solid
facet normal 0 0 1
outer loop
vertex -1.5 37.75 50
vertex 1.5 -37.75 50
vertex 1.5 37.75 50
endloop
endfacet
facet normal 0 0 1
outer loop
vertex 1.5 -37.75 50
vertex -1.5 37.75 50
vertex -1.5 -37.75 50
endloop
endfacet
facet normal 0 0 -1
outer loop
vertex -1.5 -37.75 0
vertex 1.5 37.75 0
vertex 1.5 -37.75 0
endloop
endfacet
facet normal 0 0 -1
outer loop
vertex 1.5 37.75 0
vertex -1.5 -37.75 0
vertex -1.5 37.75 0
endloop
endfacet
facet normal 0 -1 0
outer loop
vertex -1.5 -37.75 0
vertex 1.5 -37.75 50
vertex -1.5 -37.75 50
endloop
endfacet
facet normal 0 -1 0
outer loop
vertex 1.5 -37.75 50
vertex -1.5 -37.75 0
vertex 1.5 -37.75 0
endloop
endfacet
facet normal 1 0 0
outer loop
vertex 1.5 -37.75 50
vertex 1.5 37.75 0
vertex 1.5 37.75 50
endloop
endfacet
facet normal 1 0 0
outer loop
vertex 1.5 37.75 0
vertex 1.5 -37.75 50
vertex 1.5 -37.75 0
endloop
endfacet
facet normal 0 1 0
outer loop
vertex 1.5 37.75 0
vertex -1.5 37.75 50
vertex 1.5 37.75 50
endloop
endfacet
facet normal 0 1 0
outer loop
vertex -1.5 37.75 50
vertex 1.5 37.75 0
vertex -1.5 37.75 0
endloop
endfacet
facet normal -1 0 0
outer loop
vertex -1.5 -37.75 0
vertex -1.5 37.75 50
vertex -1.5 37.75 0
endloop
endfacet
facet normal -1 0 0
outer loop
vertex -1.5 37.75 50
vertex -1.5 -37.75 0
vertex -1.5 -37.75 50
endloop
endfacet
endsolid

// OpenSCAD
// file: Inlet.scad
$fn = 100;
tiny = 0.01;


/******************************************************
 * dx,dy: Maße, wie bei 'Boden' angegeben.
 *****************************************************/
module inlet_top_down(dx,dy) {
  h1 = 3;  
  dx1 = 5.9;
  dx2 = 4.0; // vier mal Fase an Ecken

  difference() {
     translate([0,0,h1/2]) cube([dx-2*dx1,dy-2*dx1,h1], true); 
     translate([+dx/2-dx1,+dy/2-dx1,h1/2-tiny]) rotate([0,0,45]) cube([dx2,dx2,h1+3*tiny], true);
     translate([+dx/2-dx1,-dy/2+dx1,h1/2-tiny]) rotate([0,0,45]) cube([dx2,dx2,h1+3*tiny], true);
     translate([-dx/2+dx1,+dy/2-dx1,h1/2-tiny]) rotate([0,0,45]) cube([dx2,dx2,h1+3*tiny], true);
     translate([-dx/2+dx1,-dy/2+dx1,h1/2-tiny]) rotate([0,0,45]) cube([dx2,dx2,h1+3*tiny], true);
     }
}


/******************************************************
 * dy: Maß, wie bei 'Boden' angegeben.
 * h:  Maß, wie bei 'Kante' angegeben.
 *****************************************************/
module inlet_front_back(h,dy) {
  h1 = 3;
  dy1 = 12+12.5;
  translate([0,0,h/2]) cube([h1,dy-dy1,h], true);
}


/******************************************************
 * dx: Maß, wie bei 'Boden' angegeben.
 * h:  Maß, wie bei 'Kante' angegeben.
 *****************************************************/
module inlet_left_right(h,dx) {
  h1 = 3;
  dx1 = 12+12.5;
  translate([0,0,h/2]) cube([dx-dx1,h1,h], true);
}
// main file
$fn = 100;

use <Inlet.scad>


inlet_front_back(50,100);
